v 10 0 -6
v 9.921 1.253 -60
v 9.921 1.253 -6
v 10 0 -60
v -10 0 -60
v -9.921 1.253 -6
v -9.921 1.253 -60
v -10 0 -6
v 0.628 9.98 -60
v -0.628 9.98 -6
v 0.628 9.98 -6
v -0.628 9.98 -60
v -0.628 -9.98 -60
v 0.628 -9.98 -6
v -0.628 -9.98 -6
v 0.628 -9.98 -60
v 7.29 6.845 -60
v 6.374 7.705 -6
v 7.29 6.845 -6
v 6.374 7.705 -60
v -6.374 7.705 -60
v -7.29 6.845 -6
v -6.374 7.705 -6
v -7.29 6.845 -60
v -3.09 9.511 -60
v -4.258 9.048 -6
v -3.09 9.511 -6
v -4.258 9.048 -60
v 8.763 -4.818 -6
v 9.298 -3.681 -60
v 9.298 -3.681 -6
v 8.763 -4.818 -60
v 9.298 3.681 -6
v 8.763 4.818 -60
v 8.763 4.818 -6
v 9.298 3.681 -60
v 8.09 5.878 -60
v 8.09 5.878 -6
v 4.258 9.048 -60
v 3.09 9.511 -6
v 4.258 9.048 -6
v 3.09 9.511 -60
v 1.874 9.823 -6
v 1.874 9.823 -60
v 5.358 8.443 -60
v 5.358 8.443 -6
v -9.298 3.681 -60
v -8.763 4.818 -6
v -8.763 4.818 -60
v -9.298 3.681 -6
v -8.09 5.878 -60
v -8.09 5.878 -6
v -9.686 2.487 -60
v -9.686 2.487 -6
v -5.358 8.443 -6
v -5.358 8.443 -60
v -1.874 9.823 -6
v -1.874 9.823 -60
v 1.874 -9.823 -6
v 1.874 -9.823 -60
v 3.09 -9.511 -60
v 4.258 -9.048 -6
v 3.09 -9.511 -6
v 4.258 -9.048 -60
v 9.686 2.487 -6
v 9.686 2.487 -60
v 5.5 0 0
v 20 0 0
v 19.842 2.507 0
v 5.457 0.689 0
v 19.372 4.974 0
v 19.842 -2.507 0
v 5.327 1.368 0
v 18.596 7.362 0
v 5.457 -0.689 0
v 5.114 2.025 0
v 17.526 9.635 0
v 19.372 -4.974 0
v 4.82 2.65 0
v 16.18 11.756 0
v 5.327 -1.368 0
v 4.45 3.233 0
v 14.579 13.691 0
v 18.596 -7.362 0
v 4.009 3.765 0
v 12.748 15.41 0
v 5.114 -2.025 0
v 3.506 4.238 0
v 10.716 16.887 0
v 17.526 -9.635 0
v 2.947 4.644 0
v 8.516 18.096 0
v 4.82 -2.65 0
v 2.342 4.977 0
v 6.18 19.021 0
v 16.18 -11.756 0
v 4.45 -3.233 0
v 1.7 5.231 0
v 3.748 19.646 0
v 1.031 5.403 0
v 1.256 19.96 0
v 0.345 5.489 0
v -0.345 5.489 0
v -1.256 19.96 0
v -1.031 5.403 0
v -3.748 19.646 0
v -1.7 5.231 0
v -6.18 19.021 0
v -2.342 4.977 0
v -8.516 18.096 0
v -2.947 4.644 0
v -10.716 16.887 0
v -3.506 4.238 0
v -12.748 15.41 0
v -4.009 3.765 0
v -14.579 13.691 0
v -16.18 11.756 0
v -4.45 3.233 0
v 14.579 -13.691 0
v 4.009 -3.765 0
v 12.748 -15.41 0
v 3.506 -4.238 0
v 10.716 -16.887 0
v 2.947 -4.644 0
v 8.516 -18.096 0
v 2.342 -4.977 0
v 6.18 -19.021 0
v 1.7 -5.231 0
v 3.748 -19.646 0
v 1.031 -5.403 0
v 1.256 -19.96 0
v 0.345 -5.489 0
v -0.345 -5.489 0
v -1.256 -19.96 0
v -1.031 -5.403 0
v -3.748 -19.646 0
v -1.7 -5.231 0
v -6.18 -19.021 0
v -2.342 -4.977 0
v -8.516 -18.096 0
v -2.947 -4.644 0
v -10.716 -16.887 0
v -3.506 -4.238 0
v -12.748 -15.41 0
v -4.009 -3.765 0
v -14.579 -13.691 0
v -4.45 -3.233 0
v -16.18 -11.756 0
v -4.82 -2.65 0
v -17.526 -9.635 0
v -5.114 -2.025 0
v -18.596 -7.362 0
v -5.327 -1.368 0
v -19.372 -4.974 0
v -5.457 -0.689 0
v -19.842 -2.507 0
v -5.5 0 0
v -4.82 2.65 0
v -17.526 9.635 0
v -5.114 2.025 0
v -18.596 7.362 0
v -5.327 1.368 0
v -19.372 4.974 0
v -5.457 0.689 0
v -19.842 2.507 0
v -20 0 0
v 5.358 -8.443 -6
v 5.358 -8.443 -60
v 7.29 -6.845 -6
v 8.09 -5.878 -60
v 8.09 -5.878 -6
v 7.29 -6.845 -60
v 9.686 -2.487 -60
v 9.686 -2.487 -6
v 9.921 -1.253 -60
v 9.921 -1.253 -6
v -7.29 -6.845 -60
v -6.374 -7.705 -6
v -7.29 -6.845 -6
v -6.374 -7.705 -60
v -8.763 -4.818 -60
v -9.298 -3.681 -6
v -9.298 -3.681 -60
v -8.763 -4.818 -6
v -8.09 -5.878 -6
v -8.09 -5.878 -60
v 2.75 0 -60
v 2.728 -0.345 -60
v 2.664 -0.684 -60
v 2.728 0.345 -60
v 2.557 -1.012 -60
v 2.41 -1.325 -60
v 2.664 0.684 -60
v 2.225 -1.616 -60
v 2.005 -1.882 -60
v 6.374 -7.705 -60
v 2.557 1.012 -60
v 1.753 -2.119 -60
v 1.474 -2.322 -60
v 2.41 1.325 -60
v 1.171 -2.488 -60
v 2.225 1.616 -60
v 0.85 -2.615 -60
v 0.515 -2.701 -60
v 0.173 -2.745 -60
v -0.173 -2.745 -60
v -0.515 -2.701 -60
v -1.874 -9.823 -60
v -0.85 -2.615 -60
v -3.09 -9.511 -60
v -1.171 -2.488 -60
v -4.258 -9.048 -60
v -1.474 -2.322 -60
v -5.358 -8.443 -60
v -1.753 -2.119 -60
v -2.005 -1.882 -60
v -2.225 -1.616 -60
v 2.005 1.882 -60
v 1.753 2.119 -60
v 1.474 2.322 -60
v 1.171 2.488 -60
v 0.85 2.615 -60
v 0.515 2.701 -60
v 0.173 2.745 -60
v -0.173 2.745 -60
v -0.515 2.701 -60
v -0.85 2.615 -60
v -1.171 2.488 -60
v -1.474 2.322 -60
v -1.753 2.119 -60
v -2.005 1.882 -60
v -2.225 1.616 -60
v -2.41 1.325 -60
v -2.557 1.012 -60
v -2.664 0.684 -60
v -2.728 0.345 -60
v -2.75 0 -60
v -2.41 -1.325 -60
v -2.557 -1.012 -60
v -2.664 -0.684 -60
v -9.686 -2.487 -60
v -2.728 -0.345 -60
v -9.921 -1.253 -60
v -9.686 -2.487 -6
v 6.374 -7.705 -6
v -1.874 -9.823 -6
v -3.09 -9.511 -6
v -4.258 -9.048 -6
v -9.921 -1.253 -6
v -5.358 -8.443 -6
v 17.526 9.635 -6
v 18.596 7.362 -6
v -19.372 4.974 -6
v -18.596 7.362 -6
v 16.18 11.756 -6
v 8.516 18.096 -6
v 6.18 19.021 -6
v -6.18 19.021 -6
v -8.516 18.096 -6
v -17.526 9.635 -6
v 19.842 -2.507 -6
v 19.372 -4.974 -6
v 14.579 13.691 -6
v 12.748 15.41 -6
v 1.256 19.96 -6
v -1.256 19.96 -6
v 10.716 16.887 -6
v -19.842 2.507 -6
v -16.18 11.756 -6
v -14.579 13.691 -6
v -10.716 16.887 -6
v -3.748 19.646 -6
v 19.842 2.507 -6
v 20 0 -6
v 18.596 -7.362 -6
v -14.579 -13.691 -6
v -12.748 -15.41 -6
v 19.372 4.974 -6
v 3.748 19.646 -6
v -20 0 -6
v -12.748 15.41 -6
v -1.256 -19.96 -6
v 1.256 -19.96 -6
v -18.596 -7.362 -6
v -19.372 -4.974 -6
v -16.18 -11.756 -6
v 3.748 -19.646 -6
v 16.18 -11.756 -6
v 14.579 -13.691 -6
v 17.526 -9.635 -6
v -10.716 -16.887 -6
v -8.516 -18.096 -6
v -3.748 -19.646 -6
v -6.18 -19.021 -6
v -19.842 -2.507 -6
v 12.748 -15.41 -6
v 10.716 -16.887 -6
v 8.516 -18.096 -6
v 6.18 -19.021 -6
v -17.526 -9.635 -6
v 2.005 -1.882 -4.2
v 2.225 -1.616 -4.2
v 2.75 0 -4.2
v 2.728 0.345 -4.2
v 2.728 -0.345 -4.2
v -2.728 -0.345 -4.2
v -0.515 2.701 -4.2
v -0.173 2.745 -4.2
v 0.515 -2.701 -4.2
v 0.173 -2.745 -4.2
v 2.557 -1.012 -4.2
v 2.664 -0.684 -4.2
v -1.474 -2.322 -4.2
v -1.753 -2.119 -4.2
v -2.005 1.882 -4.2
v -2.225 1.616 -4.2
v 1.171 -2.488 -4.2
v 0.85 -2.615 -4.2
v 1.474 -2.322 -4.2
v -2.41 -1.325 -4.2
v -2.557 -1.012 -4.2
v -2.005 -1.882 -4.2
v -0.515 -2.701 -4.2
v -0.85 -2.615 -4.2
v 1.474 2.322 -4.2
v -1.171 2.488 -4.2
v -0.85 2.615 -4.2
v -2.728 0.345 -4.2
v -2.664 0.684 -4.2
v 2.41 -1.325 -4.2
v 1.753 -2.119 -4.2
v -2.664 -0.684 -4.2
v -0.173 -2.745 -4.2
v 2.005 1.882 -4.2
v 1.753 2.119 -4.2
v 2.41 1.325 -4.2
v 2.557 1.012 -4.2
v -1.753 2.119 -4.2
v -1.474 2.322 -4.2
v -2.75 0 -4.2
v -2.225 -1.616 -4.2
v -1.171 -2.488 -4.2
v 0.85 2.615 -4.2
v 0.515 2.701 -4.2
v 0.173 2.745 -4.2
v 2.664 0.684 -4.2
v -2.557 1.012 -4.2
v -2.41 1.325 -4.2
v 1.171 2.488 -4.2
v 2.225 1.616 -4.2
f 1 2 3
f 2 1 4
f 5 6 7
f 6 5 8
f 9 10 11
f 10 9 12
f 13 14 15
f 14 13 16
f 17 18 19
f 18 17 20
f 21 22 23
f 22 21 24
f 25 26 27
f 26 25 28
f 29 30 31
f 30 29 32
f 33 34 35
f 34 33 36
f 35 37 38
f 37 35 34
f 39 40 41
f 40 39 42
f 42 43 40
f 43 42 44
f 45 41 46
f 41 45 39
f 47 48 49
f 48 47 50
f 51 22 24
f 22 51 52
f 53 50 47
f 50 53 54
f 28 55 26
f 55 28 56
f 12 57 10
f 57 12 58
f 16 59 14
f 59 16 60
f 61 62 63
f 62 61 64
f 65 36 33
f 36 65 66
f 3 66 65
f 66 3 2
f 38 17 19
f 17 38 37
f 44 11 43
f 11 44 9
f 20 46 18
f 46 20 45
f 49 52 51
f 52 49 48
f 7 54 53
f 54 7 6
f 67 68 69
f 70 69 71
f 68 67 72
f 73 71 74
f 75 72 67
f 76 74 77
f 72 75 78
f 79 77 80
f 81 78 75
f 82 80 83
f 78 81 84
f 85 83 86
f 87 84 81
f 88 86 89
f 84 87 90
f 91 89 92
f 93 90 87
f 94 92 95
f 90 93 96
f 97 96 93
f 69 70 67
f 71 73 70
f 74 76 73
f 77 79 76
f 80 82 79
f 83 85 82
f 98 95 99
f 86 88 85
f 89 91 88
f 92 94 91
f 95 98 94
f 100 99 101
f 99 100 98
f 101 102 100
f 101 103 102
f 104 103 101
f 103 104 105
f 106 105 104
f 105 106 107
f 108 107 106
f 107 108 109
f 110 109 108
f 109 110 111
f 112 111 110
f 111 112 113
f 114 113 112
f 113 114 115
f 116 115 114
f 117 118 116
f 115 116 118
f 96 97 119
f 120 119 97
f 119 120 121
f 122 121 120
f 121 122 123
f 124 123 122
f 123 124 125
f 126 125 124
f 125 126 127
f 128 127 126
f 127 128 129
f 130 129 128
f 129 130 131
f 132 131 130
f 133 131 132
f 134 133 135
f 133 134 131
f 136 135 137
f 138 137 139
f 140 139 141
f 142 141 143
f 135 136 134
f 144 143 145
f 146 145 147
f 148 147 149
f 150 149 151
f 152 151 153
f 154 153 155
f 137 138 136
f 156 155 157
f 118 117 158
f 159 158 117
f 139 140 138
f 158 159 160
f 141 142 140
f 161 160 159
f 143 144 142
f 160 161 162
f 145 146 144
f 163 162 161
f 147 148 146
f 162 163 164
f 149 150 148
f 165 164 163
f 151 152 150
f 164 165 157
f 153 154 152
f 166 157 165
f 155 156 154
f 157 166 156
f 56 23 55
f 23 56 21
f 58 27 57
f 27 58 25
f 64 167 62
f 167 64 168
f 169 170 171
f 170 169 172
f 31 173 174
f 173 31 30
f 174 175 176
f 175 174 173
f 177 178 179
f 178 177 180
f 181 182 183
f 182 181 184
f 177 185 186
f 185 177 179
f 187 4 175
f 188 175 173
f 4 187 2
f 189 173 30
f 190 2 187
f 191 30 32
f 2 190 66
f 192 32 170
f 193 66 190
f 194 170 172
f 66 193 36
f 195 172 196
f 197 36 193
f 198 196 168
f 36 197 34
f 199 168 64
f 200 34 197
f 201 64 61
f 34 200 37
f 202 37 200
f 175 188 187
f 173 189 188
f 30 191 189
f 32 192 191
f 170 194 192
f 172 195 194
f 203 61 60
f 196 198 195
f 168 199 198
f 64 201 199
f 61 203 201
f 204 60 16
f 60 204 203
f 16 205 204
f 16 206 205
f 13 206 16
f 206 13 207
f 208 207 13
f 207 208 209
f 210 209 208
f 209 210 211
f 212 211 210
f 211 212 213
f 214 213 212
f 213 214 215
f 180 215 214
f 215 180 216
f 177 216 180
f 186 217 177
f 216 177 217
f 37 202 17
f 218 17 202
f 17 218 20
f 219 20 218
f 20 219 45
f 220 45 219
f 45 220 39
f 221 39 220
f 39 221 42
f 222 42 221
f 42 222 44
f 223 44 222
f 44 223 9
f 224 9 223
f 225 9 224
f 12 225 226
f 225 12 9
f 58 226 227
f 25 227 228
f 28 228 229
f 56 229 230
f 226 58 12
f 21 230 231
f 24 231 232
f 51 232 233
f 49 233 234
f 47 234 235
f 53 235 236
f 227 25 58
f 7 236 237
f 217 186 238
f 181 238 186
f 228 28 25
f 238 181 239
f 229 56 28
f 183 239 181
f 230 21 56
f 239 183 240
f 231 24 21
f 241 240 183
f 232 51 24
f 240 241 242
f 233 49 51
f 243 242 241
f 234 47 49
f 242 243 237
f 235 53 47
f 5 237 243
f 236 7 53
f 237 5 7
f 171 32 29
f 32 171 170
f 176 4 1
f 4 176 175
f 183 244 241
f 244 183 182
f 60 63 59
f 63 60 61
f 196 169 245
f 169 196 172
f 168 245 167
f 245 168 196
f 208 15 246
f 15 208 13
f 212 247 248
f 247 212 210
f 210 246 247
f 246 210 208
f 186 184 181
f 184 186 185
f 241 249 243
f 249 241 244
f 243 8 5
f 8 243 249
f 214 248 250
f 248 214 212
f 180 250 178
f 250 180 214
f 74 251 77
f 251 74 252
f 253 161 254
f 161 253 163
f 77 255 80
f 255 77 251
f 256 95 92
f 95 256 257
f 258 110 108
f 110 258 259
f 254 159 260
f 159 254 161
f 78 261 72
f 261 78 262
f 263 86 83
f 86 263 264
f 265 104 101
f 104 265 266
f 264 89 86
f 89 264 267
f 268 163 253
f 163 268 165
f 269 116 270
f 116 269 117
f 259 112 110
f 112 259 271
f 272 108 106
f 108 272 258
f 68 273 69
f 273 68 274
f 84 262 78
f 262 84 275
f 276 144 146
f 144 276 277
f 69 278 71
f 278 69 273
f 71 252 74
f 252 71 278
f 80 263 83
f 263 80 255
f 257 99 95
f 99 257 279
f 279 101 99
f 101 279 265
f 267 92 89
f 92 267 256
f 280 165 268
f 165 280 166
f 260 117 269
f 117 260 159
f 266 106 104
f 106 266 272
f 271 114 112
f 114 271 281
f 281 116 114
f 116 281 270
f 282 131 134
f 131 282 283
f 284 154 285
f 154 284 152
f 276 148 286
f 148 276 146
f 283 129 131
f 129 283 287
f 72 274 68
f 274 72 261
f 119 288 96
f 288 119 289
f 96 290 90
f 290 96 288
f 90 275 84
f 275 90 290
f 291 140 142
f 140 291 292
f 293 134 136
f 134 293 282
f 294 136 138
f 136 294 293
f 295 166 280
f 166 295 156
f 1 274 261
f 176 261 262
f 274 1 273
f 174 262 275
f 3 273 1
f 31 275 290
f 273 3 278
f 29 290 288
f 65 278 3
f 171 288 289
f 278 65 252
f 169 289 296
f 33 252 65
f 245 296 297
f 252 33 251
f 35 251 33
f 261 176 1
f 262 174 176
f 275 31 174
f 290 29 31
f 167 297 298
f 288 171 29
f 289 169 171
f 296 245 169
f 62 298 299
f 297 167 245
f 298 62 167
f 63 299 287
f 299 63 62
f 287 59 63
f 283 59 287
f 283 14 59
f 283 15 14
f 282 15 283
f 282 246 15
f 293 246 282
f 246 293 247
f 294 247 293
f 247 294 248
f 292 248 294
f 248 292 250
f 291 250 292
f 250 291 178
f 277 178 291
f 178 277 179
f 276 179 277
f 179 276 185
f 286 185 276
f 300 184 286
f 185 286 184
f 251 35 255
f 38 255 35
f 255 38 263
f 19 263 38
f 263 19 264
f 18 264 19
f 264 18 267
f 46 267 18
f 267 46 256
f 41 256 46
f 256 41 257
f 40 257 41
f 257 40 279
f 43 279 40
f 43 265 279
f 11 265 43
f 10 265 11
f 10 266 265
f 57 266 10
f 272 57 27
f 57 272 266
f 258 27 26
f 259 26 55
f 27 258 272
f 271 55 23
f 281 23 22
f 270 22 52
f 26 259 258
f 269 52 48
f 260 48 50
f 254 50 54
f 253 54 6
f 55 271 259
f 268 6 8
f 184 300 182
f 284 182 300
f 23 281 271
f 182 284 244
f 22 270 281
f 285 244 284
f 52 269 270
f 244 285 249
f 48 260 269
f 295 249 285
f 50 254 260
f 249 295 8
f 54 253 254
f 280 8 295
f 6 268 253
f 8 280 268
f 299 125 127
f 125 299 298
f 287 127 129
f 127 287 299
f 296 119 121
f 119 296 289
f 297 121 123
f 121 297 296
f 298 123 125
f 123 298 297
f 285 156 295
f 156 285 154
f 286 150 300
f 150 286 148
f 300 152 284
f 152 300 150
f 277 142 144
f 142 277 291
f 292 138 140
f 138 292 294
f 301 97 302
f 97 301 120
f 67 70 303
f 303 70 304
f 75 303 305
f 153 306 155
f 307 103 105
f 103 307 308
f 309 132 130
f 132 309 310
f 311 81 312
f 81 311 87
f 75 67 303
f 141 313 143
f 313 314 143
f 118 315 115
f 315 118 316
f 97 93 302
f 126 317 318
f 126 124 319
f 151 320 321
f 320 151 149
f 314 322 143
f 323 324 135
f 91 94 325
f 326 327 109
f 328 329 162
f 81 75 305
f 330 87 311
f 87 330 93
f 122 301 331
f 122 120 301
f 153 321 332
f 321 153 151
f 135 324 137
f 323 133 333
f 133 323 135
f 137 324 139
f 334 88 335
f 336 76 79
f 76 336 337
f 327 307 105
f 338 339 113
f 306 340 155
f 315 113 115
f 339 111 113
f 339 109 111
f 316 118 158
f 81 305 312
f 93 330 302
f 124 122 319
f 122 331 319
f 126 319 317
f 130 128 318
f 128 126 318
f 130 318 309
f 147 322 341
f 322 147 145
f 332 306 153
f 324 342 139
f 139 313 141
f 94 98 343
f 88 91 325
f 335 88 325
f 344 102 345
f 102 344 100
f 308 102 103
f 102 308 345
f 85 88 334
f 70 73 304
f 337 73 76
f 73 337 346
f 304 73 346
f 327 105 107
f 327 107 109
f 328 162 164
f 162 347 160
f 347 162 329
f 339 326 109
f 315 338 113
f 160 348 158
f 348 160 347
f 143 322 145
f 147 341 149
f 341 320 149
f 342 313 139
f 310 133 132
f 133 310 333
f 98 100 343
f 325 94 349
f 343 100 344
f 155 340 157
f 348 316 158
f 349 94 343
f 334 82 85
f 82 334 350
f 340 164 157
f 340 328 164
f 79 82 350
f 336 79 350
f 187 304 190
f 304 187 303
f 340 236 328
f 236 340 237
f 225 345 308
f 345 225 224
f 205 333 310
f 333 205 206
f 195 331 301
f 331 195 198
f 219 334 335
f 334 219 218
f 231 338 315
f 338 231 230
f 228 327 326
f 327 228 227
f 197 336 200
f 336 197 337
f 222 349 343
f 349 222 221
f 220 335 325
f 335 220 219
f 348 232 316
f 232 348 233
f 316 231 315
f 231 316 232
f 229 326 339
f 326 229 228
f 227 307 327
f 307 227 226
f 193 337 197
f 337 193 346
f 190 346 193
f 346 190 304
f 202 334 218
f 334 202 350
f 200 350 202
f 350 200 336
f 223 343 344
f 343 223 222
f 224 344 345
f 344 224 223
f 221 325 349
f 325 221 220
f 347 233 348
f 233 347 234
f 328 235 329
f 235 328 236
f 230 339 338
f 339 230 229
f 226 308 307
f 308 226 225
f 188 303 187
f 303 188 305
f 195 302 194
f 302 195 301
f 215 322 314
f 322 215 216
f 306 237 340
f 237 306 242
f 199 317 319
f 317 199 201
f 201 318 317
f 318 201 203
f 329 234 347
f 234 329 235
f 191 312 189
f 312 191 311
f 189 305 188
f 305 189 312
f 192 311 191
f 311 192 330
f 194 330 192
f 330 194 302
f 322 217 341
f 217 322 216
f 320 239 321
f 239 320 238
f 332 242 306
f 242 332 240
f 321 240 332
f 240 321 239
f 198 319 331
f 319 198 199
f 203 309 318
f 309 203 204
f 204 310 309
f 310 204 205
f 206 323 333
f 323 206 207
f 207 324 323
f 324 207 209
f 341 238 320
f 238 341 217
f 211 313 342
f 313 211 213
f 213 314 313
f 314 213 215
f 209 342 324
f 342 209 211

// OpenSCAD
$fn = 50;


difference() {
	union() {
		translate(v = [0, 0, -60.0000000000]) {
			cylinder(h = 60, r = 10.0000000000);
		}
		translate(v = [0, 0, -6.0000000000]) {
			cylinder(h = 6, r = 20.0000000000);
		}
	}
	union() {
		translate(v = [0, 0, 0]) {
			rotate(a = [0, 0, 0]) {
				difference() {
					union() {
						#translate(v = [0, 0, -60.0000000000]) {
							cylinder(h = 60, r = 2.2500000000);
						}
						#translate(v = [0, 0, -4.2000000000]) {
							cylinder(h = 4.2000000000, r = 10.0000000000, r1 = 2.7500000000, r2 = 5.5000000000);
						}
						#translate(v = [0, 0, -60.0000000000]) {
							cylinder(h = 60, r = 2.7500000000);
						}
						#translate(v = [0, 0, -60.0000000000]) {
							cylinder(h = 60, r = 2.2500000000);
						}
					}
					union();
				}
			}
		}
	}
}
